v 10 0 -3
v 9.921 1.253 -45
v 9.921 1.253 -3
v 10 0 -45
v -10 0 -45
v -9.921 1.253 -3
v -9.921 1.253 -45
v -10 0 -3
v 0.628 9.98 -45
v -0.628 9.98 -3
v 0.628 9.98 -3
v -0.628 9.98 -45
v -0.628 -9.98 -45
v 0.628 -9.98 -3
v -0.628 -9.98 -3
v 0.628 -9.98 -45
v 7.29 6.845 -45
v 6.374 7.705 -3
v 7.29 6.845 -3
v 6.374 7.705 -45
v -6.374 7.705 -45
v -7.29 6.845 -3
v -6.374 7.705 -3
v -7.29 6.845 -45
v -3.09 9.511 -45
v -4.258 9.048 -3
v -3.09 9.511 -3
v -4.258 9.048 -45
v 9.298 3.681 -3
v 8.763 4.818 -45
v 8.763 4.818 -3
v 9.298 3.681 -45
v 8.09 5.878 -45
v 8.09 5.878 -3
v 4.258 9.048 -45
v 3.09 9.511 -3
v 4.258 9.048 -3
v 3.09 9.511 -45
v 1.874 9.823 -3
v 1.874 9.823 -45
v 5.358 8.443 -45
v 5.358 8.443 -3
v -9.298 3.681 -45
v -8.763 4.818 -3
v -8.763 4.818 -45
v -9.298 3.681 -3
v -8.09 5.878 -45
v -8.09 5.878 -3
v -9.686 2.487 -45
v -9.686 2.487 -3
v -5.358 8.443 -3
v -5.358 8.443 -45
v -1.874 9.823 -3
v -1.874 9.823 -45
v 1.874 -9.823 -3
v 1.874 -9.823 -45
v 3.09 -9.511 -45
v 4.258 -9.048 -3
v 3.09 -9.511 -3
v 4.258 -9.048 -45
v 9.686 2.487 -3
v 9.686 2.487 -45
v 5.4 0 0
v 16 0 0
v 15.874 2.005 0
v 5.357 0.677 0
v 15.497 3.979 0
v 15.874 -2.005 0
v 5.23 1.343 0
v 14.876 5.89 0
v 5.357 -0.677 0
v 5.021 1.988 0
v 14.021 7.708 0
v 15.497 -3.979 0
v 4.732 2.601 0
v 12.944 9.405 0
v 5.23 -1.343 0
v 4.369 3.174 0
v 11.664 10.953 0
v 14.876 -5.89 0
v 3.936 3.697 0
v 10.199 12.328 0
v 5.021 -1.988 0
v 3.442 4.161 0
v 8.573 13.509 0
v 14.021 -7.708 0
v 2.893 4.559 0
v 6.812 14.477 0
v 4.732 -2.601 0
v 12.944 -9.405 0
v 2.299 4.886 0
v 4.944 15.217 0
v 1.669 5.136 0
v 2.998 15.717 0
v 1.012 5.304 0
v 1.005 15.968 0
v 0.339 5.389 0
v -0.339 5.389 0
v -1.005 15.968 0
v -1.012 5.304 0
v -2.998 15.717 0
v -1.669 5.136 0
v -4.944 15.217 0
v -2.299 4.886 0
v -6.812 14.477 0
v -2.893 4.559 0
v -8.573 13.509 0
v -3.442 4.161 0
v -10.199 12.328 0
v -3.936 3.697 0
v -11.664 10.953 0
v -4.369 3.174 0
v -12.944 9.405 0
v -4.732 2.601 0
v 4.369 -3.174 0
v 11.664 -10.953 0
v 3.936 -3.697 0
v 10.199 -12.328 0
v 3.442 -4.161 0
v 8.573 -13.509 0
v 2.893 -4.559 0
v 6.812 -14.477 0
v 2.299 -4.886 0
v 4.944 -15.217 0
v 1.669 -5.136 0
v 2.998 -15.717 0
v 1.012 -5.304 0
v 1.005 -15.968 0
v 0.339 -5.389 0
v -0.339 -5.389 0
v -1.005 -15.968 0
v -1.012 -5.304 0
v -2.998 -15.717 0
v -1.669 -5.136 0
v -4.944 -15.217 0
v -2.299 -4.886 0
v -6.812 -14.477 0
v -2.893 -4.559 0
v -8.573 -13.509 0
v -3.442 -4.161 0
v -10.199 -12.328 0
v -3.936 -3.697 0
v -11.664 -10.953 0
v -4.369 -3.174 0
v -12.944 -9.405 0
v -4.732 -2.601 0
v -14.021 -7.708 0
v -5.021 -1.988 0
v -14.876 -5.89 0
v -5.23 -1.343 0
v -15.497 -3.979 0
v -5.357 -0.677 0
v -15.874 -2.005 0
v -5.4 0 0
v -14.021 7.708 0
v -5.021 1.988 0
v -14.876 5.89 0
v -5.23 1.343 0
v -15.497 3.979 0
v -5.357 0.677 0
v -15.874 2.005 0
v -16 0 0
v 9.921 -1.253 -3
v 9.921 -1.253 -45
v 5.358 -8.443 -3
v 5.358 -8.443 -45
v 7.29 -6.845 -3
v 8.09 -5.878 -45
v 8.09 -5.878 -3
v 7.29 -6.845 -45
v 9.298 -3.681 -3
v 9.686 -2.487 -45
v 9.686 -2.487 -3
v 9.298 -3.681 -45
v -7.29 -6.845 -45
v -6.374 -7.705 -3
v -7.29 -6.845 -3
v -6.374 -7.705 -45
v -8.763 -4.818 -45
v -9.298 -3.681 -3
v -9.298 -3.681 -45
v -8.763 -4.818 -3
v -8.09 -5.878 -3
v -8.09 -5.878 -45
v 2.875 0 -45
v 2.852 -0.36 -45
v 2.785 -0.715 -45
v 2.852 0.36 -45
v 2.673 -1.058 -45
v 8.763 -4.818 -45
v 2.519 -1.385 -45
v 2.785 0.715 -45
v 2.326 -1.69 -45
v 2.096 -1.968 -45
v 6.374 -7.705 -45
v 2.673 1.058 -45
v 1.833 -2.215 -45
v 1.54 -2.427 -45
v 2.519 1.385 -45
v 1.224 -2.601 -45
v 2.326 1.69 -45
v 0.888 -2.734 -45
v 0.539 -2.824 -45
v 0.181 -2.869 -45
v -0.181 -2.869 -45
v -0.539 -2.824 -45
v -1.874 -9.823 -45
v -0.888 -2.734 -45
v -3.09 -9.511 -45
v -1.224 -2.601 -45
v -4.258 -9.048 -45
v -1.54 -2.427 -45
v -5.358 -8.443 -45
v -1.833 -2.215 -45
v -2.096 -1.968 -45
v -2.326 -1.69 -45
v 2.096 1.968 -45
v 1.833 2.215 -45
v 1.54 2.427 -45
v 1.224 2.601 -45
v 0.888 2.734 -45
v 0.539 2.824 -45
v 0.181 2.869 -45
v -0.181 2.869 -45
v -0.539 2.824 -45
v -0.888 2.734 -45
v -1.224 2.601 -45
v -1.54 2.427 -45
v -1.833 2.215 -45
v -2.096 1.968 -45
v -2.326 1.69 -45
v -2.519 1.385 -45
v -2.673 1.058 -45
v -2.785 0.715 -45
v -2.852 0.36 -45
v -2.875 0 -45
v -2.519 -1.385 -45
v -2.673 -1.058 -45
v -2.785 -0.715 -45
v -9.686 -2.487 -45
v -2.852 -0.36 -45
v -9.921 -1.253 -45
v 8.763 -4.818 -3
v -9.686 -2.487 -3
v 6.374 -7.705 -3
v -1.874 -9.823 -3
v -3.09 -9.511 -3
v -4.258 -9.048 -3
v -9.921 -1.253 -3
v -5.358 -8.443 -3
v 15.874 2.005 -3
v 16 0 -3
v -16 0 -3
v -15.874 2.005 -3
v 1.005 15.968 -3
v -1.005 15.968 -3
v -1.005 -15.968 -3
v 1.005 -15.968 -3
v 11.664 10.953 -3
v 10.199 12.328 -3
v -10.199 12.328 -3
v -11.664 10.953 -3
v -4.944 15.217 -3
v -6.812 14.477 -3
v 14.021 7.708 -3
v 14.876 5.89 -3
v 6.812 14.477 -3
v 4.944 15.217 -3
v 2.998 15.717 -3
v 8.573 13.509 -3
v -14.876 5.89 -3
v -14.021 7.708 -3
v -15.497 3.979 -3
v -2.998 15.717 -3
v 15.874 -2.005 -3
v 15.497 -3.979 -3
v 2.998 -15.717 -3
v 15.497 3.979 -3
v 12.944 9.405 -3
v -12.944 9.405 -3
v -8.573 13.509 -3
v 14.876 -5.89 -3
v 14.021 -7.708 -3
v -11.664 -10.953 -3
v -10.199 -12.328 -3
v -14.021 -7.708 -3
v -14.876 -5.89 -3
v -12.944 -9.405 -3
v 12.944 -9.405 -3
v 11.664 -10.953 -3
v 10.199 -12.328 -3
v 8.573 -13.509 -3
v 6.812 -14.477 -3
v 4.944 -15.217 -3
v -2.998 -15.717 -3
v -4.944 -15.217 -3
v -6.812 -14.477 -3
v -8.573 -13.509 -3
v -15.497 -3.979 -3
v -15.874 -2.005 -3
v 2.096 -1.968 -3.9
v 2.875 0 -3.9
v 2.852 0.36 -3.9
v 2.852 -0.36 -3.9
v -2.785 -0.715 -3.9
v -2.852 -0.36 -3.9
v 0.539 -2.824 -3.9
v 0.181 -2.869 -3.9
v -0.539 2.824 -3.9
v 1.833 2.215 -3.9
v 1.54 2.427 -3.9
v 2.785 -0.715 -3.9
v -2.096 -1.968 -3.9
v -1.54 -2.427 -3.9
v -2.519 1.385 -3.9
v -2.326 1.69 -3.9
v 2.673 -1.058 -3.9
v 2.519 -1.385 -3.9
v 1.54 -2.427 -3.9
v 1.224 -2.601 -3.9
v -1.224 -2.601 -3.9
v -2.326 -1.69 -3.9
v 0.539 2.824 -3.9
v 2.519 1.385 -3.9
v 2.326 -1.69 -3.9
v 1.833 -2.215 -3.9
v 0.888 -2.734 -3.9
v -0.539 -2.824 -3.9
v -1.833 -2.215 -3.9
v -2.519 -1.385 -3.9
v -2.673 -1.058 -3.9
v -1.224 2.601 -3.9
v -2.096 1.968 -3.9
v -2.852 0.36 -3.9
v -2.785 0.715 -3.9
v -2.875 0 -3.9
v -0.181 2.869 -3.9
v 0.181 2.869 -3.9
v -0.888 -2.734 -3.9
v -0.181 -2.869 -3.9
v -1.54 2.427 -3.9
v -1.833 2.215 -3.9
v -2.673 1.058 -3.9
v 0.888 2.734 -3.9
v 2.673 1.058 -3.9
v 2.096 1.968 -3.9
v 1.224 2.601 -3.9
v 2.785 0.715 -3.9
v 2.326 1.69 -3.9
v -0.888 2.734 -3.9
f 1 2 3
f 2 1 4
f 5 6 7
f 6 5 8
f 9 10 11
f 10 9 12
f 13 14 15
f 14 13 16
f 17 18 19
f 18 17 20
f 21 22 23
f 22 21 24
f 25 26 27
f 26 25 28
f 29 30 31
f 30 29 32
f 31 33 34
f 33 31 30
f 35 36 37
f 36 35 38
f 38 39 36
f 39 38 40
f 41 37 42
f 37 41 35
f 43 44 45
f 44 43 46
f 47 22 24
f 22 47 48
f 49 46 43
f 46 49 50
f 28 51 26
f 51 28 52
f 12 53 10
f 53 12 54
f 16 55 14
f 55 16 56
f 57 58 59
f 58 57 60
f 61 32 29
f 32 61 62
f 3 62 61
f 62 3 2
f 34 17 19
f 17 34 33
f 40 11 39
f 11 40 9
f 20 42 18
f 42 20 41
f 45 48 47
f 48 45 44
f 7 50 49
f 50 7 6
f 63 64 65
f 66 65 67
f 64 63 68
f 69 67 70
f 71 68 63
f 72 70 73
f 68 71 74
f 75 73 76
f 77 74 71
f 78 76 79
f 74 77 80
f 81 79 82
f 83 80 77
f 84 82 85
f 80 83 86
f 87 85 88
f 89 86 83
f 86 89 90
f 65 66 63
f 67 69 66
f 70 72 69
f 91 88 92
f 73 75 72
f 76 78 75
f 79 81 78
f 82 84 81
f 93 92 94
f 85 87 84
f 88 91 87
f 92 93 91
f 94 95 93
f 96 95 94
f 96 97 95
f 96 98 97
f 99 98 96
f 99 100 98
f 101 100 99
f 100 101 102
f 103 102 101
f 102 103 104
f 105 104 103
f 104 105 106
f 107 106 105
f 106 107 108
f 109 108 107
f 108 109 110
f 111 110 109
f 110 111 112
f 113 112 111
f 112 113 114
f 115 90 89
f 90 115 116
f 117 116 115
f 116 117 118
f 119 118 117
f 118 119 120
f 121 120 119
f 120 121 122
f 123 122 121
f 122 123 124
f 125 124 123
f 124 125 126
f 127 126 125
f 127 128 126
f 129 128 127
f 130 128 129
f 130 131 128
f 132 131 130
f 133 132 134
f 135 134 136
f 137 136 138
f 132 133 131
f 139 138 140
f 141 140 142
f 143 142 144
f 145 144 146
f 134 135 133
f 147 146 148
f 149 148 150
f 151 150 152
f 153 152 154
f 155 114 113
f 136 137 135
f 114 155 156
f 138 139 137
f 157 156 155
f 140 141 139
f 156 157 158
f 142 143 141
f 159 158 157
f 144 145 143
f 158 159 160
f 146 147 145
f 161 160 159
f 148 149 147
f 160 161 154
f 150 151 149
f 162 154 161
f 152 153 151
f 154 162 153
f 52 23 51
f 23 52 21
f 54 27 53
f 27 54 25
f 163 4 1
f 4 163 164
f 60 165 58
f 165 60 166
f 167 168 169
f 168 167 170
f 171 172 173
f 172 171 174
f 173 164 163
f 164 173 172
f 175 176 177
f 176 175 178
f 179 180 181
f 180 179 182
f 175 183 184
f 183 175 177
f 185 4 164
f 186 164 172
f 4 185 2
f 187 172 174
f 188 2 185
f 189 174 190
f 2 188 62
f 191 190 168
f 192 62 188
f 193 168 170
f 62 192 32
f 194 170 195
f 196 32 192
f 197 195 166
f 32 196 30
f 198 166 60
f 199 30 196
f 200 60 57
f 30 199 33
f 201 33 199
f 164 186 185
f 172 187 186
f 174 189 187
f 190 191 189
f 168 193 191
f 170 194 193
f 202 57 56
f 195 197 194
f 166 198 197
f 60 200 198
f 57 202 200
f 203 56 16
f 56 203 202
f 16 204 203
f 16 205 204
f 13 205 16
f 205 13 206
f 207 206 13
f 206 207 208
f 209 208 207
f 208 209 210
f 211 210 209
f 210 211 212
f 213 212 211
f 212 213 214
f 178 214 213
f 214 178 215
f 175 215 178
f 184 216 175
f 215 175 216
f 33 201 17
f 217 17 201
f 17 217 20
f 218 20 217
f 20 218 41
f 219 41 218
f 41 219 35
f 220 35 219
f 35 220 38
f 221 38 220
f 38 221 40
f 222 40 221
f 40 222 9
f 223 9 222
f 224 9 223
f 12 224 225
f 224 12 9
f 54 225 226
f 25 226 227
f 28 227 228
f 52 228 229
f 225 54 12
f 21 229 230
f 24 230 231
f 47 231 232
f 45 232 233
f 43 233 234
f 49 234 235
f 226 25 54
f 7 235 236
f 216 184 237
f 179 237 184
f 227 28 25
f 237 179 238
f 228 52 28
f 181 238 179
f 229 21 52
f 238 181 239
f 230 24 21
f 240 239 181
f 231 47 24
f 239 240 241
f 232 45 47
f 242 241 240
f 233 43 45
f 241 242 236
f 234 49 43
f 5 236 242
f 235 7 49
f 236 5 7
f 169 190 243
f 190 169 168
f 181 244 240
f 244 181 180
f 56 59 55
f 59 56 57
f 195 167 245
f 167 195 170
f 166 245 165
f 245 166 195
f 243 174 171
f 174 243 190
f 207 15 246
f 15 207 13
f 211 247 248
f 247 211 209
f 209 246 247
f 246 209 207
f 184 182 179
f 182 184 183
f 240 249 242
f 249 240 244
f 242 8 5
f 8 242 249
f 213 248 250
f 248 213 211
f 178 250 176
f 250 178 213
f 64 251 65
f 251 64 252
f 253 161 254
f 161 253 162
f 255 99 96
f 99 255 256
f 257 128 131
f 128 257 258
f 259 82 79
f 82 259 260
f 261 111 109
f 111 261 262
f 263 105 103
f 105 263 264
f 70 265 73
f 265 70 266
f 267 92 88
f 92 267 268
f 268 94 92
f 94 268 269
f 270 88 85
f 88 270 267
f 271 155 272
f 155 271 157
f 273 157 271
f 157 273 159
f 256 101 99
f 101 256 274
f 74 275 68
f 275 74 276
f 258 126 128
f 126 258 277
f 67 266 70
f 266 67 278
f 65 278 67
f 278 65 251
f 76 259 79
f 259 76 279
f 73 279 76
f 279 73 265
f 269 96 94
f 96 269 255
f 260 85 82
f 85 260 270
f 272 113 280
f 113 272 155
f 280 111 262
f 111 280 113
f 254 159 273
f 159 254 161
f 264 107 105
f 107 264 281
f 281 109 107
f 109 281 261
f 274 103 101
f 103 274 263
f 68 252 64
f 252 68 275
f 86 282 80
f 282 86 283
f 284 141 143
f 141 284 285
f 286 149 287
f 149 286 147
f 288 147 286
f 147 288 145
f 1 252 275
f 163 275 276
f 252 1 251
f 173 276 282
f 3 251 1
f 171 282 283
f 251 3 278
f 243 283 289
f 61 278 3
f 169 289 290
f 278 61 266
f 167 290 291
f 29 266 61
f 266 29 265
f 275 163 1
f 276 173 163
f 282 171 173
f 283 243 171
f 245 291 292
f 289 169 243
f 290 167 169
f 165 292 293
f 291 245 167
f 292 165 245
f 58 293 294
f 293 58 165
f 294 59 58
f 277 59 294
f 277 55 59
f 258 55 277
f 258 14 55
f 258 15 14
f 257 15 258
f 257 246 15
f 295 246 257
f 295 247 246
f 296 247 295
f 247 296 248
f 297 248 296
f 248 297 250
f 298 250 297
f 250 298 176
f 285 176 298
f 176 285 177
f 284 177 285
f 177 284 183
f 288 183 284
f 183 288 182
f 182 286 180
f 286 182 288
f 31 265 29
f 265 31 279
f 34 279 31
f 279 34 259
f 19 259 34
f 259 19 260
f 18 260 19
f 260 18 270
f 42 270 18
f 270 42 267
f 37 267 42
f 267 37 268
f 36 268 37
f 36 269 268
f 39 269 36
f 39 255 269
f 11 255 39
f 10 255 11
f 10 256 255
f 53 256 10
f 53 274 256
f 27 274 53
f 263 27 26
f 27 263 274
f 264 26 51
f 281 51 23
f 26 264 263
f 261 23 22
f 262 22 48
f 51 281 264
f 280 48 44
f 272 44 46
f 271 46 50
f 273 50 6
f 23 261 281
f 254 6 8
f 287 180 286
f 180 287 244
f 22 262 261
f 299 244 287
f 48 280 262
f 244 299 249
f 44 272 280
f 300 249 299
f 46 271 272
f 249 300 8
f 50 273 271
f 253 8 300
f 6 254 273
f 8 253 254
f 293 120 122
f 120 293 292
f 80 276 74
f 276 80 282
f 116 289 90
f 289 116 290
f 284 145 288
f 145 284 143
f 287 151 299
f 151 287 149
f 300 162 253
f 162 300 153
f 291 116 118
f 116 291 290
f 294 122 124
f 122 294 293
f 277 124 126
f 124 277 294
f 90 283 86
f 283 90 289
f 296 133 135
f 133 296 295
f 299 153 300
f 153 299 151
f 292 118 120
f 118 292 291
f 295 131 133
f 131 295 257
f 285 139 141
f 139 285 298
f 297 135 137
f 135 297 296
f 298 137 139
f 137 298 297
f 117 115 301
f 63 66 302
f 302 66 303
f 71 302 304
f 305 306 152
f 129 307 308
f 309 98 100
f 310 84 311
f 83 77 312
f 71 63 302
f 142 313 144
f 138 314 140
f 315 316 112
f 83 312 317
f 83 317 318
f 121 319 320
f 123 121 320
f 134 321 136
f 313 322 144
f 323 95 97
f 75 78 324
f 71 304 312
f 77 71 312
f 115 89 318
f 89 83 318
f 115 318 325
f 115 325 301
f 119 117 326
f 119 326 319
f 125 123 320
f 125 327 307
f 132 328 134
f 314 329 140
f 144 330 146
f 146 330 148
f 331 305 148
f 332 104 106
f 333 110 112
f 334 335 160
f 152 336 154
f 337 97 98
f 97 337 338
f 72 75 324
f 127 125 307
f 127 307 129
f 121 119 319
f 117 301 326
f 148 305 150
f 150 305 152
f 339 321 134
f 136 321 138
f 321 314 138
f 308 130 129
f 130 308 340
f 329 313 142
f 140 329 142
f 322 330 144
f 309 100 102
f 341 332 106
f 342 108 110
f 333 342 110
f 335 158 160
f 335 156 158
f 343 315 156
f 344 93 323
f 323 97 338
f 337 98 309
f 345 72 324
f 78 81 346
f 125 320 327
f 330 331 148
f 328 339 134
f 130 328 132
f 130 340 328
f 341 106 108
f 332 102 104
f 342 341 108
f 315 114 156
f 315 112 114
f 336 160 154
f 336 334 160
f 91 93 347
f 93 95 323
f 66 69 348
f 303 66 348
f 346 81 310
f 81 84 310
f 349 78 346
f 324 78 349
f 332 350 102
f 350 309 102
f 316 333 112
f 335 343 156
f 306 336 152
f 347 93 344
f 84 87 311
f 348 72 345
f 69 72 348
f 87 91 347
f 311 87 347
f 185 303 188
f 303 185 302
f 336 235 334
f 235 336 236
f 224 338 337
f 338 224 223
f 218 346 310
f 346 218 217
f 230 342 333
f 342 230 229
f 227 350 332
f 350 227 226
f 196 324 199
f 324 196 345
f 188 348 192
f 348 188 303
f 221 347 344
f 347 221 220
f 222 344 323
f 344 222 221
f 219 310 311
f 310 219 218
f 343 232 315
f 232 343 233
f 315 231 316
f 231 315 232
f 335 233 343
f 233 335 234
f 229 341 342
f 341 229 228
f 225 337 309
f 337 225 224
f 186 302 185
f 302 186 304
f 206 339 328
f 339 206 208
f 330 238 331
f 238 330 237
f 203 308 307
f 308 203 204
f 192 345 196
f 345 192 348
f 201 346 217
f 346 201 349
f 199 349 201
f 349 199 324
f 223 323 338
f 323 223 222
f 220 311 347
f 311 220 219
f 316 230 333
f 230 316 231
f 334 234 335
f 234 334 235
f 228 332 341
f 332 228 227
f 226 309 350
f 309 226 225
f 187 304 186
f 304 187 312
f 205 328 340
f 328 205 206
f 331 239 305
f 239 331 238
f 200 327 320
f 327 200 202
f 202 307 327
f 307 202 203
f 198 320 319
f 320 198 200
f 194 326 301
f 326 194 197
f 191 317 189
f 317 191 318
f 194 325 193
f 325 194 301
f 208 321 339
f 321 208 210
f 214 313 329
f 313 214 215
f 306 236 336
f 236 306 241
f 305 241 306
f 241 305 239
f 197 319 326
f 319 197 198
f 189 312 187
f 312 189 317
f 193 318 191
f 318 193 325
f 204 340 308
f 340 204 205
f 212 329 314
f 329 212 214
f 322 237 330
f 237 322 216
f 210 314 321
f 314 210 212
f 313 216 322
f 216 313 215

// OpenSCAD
$fn = 50;


difference() {
	union() {
		translate(v = [0, 0, -45.0000000000]) {
			cylinder(h = 45, r = 10.0000000000);
		}
		translate(v = [0, 0, -3.0000000000]) {
			cylinder(h = 3, r = 16.0000000000);
		}
	}
	union() {
		translate(v = [0, 0, 0]) {
			rotate(a = [0, 0, 0]) {
				difference() {
					union() {
						#translate(v = [0, 0, -45.0000000000]) {
							cylinder(h = 45, r = 2.6000000000);
						}
						#translate(v = [0, 0, -3.9000000000]) {
							cylinder(h = 3.9000000000, r = 10.0000000000, r1 = 2.8750000000, r2 = 5.4000000000);
						}
						#translate(v = [0, 0, -45.0000000000]) {
							cylinder(h = 45, r = 2.8750000000);
						}
						#translate(v = [0, 0, -45.0000000000]) {
							cylinder(h = 45, r = 2.6000000000);
						}
					}
					union();
				}
			}
		}
	}
}
